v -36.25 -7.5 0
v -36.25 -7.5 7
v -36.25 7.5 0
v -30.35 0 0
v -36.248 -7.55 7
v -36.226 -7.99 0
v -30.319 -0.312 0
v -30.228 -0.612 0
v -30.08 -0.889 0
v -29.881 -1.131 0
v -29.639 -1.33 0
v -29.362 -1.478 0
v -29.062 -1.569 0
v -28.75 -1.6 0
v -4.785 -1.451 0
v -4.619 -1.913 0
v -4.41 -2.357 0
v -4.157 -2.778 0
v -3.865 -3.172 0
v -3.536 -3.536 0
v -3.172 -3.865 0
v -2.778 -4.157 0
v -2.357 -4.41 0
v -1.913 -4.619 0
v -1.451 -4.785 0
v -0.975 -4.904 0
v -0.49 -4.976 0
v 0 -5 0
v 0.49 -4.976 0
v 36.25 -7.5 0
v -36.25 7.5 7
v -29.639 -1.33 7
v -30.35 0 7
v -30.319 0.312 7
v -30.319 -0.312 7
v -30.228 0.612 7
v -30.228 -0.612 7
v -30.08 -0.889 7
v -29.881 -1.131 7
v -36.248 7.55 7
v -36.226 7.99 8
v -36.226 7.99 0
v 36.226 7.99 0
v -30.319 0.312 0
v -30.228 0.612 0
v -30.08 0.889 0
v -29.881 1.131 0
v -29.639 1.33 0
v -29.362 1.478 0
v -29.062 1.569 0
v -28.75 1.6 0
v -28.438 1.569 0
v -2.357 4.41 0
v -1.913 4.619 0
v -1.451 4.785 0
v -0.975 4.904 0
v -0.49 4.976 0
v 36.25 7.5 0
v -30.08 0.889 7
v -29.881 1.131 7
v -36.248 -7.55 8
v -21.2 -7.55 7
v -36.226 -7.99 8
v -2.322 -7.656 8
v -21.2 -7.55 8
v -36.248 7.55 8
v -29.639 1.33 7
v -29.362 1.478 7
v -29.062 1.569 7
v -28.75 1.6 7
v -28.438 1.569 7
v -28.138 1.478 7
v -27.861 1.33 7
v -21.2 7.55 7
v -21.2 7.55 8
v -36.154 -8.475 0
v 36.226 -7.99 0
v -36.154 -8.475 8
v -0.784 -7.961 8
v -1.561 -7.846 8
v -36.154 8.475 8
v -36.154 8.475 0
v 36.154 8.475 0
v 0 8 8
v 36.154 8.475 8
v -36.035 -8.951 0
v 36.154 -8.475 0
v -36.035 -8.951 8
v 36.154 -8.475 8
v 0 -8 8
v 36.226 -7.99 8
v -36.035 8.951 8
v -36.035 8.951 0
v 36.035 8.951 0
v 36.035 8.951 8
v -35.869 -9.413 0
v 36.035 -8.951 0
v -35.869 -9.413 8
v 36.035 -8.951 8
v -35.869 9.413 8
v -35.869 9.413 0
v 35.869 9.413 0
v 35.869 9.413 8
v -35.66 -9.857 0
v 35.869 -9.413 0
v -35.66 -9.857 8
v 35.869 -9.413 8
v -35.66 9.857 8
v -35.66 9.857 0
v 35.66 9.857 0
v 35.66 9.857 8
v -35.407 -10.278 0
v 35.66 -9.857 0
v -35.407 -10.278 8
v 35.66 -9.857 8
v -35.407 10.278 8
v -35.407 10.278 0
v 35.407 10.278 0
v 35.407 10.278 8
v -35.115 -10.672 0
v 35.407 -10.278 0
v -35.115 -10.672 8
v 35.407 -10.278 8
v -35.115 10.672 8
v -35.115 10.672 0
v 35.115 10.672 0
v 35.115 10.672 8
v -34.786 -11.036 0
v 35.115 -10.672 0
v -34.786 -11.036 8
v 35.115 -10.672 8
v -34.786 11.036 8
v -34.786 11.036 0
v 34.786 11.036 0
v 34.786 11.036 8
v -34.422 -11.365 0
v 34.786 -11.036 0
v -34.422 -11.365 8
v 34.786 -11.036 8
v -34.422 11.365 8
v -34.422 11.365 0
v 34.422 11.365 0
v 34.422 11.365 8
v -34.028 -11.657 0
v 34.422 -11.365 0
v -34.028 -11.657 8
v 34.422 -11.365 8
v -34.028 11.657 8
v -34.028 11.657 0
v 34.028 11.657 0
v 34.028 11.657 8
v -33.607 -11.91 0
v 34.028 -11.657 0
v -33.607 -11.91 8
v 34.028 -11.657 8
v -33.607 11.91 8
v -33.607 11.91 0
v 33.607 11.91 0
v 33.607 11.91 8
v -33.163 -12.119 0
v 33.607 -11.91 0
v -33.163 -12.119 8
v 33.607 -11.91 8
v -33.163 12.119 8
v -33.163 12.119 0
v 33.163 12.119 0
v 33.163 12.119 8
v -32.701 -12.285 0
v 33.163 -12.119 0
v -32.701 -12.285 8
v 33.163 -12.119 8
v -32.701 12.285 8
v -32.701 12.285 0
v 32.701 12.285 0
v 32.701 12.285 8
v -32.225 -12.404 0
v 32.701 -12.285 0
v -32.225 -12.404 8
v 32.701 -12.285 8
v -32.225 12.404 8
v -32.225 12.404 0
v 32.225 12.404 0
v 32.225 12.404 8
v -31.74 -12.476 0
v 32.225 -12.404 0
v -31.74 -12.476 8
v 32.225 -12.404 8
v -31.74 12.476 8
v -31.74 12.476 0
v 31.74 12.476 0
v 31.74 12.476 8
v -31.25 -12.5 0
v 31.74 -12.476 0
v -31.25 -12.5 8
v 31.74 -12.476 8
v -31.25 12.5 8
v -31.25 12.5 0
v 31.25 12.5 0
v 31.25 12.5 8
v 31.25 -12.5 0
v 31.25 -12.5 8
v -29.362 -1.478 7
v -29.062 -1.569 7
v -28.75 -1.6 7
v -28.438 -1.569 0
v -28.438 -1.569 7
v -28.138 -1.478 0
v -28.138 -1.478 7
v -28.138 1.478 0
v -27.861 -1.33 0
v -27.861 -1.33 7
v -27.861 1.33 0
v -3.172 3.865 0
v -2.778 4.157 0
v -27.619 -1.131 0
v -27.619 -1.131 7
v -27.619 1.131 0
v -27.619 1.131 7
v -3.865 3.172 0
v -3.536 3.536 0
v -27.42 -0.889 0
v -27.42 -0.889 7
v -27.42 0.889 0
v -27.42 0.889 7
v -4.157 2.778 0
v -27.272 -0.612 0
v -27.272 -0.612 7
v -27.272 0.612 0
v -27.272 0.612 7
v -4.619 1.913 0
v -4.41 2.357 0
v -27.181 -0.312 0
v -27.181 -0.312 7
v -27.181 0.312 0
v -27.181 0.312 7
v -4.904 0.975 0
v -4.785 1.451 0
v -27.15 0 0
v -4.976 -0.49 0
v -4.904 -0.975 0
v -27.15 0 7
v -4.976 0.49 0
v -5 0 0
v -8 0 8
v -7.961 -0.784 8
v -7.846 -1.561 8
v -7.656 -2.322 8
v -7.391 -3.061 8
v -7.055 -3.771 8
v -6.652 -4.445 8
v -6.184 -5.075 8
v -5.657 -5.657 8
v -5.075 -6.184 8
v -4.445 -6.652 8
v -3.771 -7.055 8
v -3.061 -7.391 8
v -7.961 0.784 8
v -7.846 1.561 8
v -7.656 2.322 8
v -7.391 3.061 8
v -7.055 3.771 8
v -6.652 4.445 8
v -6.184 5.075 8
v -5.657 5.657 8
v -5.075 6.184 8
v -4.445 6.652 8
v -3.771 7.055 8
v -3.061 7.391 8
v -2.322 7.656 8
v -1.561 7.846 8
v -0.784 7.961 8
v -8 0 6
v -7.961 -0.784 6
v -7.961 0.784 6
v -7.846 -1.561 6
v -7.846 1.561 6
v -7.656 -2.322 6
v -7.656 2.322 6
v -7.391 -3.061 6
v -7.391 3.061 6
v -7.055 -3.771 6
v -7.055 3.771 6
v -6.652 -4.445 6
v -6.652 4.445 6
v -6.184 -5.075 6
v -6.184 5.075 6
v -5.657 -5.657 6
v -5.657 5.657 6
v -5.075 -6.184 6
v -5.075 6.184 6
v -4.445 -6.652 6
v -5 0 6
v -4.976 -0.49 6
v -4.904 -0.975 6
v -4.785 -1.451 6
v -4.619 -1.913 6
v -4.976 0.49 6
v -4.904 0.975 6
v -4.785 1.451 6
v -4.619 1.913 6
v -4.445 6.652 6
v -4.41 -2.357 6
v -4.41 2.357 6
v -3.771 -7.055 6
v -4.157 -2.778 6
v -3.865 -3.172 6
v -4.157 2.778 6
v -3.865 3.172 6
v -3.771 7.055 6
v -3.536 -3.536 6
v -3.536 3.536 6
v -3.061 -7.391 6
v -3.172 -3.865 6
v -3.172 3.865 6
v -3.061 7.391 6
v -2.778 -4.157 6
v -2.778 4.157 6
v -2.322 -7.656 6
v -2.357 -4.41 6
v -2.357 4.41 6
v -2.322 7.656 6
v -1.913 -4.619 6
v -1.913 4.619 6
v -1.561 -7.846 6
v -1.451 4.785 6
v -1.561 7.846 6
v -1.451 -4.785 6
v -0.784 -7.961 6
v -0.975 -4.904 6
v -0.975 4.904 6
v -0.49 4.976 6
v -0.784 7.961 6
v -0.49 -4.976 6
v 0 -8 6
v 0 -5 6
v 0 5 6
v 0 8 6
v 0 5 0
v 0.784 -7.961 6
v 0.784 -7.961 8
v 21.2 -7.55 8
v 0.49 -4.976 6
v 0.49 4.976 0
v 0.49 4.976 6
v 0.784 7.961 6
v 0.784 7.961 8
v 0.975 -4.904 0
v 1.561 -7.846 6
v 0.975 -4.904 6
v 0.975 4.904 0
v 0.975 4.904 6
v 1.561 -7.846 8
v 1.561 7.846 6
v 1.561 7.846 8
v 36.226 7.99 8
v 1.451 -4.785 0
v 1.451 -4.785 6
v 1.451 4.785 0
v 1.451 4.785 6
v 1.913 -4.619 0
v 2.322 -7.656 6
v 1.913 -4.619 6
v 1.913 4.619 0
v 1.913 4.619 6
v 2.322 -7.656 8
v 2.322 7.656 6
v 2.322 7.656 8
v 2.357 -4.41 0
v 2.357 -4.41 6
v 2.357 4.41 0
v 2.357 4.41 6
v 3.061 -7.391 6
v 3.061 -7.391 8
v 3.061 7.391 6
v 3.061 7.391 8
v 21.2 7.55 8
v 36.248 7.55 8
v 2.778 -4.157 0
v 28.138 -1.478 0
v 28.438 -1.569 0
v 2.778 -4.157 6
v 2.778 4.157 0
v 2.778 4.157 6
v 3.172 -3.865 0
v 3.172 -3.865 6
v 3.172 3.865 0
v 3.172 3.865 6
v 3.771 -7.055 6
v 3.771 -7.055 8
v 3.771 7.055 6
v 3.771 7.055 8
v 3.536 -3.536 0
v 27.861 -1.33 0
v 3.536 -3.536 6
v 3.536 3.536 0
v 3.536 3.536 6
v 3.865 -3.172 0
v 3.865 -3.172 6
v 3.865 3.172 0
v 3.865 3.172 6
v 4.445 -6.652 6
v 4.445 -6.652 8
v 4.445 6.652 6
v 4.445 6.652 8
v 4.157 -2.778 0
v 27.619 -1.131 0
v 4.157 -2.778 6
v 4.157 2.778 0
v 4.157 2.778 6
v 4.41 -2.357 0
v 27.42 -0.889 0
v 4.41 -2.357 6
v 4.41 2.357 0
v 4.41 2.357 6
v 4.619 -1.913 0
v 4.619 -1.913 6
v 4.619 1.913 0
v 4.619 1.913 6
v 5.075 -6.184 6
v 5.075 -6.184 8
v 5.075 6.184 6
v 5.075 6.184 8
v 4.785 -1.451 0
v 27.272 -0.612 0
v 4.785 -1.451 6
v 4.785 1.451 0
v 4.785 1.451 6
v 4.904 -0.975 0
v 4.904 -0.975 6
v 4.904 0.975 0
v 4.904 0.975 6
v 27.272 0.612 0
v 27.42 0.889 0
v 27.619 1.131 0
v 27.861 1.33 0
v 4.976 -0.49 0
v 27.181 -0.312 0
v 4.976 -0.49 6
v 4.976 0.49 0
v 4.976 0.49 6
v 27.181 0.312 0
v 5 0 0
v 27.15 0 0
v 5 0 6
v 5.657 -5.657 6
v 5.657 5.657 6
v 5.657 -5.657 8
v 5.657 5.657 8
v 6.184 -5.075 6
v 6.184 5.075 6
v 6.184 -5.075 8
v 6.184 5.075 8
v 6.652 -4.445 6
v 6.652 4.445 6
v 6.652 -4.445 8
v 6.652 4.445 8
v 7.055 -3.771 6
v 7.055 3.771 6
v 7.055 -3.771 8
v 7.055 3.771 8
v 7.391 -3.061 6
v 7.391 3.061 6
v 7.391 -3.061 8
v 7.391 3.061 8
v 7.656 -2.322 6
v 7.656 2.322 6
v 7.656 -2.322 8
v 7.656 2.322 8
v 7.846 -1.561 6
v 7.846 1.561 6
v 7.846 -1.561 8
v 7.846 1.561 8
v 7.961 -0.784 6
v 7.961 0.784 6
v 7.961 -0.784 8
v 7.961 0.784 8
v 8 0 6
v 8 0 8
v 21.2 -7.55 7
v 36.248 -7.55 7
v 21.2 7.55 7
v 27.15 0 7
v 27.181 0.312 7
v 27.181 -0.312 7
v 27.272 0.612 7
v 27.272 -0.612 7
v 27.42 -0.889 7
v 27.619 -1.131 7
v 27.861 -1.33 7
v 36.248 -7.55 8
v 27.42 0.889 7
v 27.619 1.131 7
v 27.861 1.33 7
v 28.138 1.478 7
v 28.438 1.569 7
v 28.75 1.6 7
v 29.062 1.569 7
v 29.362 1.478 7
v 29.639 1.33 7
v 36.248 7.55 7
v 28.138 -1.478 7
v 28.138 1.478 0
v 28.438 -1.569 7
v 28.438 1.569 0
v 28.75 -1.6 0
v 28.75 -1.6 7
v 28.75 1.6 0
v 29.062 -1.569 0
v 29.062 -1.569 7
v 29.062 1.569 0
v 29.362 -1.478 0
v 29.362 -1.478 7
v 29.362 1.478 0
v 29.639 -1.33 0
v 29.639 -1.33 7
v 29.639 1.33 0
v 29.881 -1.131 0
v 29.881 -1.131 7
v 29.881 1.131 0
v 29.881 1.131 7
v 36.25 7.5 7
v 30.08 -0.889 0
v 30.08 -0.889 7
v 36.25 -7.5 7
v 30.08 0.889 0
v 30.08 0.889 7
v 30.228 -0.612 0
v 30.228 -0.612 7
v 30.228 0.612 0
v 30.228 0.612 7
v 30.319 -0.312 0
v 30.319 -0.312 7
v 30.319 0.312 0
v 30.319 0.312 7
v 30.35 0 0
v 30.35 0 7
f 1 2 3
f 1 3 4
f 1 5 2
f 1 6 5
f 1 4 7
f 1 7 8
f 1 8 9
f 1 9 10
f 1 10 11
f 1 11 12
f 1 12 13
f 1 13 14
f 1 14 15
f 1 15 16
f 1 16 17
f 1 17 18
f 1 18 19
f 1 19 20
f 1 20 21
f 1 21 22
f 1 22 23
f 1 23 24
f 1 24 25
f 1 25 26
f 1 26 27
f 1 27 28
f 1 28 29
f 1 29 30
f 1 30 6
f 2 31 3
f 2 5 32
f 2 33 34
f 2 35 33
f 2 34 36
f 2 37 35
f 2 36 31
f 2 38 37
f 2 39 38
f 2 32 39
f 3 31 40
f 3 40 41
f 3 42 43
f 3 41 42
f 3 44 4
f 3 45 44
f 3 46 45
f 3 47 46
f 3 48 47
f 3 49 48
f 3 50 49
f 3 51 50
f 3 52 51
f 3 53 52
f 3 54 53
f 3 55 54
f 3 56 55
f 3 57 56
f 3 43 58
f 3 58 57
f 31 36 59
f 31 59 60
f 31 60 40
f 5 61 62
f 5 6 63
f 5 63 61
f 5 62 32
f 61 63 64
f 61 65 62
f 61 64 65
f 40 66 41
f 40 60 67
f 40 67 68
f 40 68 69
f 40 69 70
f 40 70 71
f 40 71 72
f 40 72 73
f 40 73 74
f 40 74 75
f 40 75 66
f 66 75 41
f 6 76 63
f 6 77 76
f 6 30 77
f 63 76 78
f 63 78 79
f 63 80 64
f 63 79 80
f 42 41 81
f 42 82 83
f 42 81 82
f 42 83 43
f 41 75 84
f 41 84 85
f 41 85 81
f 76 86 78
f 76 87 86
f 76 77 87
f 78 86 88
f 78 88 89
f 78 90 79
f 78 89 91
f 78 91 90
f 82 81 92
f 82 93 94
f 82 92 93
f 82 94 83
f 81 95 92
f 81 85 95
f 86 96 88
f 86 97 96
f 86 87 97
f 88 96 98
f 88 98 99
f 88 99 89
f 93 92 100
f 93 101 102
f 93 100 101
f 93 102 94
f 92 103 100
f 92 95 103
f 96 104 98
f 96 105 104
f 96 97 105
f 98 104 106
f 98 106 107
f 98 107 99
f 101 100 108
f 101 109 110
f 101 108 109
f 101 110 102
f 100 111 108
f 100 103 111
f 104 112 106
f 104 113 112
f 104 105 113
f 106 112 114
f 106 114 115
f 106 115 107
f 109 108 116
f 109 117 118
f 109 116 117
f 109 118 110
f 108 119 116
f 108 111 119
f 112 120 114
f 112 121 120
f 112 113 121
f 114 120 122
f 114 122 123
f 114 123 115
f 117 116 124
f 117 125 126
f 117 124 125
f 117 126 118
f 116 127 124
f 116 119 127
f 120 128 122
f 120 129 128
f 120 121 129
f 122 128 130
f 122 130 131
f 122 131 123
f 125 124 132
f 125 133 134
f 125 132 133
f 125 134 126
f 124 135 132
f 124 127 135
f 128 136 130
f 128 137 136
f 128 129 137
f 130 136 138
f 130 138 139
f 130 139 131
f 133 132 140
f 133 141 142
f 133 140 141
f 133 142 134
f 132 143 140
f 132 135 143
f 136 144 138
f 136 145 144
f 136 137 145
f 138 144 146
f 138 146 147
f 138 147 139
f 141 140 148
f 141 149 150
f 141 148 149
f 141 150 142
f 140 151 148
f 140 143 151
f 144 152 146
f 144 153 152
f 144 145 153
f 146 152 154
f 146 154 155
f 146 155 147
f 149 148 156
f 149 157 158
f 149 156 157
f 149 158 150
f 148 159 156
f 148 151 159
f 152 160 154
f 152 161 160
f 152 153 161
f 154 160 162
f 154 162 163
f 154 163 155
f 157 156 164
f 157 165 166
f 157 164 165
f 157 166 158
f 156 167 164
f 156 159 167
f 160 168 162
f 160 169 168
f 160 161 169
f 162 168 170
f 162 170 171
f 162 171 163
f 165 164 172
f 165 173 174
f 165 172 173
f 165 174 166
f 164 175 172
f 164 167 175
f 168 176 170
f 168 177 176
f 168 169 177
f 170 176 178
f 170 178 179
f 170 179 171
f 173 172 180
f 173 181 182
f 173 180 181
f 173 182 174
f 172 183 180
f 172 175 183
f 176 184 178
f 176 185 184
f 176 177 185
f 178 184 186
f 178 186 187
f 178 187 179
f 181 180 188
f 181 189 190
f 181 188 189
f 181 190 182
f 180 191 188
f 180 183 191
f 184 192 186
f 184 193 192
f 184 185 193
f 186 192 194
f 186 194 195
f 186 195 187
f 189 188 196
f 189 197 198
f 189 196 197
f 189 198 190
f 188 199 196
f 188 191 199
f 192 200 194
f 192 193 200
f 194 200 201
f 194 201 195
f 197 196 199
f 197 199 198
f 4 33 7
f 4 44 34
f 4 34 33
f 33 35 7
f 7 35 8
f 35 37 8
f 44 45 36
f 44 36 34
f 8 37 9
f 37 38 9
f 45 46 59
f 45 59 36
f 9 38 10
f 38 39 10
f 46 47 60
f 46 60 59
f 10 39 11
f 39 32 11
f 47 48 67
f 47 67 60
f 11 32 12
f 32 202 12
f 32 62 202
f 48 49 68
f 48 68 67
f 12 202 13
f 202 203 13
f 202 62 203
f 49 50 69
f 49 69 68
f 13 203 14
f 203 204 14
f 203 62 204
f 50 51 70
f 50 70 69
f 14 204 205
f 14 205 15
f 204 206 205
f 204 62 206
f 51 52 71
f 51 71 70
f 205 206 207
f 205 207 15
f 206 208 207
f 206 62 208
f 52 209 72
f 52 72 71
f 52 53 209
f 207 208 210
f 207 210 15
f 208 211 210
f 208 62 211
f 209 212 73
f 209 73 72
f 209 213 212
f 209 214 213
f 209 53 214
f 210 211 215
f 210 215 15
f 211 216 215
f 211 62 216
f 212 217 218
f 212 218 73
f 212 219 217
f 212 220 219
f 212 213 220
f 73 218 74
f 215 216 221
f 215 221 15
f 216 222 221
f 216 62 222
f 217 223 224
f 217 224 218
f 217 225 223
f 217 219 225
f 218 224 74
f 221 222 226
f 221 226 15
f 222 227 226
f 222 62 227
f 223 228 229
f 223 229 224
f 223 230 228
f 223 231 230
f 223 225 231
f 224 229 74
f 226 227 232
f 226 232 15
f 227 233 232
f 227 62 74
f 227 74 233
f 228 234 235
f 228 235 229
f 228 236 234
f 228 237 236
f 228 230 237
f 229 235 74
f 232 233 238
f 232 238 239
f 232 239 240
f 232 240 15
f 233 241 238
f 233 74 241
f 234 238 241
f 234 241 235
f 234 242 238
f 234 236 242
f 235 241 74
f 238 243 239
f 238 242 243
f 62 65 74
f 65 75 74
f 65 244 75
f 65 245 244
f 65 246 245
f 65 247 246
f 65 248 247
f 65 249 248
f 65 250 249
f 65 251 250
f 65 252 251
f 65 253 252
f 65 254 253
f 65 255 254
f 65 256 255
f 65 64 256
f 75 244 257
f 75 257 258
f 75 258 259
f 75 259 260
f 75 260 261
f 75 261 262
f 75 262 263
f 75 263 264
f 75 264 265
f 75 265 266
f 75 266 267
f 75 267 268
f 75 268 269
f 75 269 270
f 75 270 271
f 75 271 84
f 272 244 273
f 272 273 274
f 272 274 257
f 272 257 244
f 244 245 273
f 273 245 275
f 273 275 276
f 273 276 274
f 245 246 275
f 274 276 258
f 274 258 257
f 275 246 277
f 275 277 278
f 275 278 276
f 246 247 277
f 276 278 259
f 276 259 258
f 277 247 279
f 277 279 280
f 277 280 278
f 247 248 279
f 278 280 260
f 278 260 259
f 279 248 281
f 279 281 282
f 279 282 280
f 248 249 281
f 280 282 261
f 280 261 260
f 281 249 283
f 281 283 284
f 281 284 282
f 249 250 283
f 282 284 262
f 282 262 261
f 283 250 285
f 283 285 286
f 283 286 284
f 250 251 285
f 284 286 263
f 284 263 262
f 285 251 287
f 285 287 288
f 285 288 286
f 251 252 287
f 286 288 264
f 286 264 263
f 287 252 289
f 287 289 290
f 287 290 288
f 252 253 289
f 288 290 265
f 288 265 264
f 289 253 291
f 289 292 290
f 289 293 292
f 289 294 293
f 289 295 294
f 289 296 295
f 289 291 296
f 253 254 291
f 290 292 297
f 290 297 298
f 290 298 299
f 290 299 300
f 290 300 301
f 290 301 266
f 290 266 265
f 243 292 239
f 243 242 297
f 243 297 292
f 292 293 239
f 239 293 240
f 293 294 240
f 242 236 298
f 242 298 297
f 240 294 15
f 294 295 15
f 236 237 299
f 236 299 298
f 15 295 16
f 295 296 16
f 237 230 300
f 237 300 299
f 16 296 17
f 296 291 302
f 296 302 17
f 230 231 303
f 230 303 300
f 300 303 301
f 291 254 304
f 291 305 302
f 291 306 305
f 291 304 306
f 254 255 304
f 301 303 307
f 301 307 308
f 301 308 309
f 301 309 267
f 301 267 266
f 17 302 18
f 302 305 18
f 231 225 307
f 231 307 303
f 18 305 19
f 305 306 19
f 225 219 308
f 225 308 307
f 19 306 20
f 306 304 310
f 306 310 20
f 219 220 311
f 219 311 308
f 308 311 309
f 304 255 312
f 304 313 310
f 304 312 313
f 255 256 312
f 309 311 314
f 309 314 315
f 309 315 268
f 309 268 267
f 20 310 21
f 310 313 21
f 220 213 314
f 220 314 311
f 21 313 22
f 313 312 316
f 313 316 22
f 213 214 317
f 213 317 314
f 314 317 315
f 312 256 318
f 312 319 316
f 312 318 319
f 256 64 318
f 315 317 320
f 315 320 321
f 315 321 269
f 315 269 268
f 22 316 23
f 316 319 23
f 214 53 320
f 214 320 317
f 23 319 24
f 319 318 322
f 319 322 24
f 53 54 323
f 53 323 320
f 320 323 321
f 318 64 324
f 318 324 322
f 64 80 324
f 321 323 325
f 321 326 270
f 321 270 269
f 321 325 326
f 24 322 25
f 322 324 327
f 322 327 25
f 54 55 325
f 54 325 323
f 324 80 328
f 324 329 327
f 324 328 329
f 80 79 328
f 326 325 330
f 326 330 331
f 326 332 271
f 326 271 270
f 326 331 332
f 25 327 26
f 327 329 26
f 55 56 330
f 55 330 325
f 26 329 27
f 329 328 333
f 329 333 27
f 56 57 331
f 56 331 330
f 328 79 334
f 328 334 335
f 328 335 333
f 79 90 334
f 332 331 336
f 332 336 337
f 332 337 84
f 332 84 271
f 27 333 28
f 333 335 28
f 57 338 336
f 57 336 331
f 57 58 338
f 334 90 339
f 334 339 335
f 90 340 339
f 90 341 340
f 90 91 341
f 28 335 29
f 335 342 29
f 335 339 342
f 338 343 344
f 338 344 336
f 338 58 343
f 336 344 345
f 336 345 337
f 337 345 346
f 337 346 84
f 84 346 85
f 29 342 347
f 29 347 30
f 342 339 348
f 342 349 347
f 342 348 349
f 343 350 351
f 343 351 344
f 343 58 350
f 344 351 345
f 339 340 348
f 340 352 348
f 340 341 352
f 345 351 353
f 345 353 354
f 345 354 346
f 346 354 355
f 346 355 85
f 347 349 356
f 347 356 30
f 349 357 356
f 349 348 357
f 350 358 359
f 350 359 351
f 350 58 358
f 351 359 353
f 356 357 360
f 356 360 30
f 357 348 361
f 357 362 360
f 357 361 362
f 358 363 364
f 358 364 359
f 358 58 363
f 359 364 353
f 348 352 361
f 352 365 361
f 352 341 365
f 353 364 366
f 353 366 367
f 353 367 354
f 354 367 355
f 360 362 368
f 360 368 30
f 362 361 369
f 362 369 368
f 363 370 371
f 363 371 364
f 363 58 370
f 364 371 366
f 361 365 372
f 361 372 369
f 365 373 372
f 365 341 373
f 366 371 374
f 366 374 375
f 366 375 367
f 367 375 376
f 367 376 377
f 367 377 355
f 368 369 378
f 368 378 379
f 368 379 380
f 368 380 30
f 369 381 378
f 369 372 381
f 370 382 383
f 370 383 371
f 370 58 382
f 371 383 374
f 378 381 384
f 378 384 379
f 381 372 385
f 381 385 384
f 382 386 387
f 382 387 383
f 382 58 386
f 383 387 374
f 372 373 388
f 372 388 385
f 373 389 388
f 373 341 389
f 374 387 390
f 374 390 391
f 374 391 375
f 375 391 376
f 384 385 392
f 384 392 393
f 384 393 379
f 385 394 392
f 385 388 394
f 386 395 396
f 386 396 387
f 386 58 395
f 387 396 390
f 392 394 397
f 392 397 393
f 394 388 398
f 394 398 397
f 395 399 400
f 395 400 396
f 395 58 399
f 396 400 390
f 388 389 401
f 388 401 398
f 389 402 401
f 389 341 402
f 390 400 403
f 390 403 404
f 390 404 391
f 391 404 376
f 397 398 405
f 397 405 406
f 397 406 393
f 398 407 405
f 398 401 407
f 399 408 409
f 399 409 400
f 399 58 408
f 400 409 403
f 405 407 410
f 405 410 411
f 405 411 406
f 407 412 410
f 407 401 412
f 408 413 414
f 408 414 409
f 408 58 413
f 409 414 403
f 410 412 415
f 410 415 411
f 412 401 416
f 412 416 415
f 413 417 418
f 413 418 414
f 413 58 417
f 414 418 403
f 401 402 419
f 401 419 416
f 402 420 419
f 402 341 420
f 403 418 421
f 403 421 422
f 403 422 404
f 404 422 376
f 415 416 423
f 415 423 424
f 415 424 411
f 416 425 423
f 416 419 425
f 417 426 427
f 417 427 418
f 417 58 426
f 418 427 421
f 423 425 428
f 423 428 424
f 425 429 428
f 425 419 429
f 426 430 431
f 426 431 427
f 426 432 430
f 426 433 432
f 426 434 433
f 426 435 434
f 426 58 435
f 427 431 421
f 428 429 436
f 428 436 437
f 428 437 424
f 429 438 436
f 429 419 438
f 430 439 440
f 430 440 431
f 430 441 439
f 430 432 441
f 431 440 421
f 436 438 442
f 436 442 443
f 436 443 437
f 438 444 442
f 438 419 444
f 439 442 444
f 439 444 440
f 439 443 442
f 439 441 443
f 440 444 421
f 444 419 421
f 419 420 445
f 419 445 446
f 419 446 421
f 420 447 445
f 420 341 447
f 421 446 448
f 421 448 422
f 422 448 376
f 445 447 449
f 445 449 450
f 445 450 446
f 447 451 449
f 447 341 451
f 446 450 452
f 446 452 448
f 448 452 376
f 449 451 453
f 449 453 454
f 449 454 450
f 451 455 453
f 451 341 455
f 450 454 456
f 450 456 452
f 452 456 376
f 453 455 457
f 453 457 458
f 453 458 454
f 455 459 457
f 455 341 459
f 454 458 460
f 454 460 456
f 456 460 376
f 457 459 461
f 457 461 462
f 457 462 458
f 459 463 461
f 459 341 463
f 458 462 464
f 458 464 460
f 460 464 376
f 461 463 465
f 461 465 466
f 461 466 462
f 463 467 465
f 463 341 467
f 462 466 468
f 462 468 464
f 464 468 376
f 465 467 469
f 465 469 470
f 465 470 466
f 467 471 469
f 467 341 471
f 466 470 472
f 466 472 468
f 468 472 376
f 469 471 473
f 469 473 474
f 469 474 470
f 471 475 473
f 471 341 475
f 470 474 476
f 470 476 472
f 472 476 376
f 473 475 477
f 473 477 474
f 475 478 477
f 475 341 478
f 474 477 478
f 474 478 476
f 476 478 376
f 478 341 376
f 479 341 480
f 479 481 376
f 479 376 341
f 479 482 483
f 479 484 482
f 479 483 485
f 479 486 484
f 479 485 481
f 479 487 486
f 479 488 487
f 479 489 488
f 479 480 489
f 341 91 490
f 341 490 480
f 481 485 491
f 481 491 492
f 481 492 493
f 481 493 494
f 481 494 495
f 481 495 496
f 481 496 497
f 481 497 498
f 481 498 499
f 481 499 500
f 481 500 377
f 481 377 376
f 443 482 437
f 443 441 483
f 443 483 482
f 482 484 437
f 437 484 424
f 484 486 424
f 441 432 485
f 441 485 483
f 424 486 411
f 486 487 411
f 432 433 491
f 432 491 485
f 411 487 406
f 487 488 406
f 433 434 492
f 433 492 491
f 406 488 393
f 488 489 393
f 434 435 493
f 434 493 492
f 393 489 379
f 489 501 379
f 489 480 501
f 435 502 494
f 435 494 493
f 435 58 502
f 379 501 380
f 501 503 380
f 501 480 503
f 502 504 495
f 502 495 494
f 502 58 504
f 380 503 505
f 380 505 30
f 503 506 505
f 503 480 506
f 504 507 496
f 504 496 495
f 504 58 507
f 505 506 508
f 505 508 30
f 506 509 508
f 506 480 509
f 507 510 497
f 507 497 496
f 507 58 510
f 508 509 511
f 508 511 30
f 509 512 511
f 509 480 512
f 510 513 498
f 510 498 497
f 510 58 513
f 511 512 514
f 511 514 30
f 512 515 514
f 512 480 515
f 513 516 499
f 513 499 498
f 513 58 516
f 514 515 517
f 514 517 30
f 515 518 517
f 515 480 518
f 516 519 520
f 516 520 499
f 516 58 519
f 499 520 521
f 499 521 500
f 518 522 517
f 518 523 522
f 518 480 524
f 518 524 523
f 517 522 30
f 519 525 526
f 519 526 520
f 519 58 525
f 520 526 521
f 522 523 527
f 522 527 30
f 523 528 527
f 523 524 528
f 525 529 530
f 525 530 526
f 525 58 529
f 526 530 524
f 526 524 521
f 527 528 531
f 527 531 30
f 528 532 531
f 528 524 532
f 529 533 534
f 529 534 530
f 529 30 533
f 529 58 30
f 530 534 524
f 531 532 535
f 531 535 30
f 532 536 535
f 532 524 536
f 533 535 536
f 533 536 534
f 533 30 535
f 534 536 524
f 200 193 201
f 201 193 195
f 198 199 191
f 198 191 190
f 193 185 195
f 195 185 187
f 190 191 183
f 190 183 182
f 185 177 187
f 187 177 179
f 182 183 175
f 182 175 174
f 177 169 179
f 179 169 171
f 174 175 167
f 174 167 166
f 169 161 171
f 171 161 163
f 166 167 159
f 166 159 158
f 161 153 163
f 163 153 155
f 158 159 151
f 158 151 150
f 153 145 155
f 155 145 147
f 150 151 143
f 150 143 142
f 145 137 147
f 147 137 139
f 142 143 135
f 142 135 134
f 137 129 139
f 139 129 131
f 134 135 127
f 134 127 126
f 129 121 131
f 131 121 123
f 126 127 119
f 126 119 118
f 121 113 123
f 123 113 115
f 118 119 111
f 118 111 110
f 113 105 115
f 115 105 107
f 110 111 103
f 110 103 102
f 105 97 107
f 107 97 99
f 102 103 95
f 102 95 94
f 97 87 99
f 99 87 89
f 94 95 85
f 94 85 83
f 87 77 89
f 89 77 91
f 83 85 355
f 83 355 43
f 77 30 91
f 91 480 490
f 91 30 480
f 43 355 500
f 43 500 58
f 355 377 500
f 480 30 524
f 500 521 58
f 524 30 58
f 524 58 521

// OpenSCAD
backstop_height = 25;
backstop_thickness = 8;
corner_radius = 5;

plate_size = [77.5, 80];
baffle_width = 20;
extrusion_size = 15;

extrusion_center_offset = plate_size[0] / 2 - baffle_width / 2;
backstop_width = 2 * extrusion_center_offset + extrusion_size;

extrusion_groove_size = extrusion_size + 0.1;
extrusion_groove_depth = 1;

linear_shaft_hole_radius = 5;
linear_shaft_groove_radius = 8;
linear_shaft_groove_depth = 2;
m3_hole_radius = 3.2 / 2;

module backstop() {
    difference() {
        // Main body
        linear_extrude(height = backstop_thickness) {
            minkowski() {
                square([backstop_width - 2 * corner_radius, backstop_height - 2 * corner_radius], center = true);
                circle(r = corner_radius, $fn = 64);
            }
        }

        // Linear shaft hole (centre)
        translate([0, 0, -0.5]) {
            cylinder(h = backstop_thickness + 1, r = linear_shaft_hole_radius, $fn = 64);
        }

        // Two M3 screw holes at extrusion centres
        for (side = [-1, 1]) {
            translate([side * extrusion_center_offset, 0, -0.5]) {
                cylinder(h = backstop_thickness + 1, r = m3_hole_radius, $fn = 32);
            }
        }

        // Groves on the face that mates with the extrusions
        for (side = [-1, 1]) {
            translate([side * extrusion_center_offset, 0, backstop_thickness - extrusion_groove_depth]) {
                linear_extrude(height = extrusion_groove_depth + 0.5) {
                    square([extrusion_groove_size, extrusion_groove_size], center = true);
                }
            }
        }

        // Circular groove around shaft
        translate([0, 0, backstop_thickness - linear_shaft_groove_depth]) {
            cylinder(h = linear_shaft_groove_depth + 0.5, r = linear_shaft_groove_radius, $fn = 64);
        }
    }
}

backstop();
